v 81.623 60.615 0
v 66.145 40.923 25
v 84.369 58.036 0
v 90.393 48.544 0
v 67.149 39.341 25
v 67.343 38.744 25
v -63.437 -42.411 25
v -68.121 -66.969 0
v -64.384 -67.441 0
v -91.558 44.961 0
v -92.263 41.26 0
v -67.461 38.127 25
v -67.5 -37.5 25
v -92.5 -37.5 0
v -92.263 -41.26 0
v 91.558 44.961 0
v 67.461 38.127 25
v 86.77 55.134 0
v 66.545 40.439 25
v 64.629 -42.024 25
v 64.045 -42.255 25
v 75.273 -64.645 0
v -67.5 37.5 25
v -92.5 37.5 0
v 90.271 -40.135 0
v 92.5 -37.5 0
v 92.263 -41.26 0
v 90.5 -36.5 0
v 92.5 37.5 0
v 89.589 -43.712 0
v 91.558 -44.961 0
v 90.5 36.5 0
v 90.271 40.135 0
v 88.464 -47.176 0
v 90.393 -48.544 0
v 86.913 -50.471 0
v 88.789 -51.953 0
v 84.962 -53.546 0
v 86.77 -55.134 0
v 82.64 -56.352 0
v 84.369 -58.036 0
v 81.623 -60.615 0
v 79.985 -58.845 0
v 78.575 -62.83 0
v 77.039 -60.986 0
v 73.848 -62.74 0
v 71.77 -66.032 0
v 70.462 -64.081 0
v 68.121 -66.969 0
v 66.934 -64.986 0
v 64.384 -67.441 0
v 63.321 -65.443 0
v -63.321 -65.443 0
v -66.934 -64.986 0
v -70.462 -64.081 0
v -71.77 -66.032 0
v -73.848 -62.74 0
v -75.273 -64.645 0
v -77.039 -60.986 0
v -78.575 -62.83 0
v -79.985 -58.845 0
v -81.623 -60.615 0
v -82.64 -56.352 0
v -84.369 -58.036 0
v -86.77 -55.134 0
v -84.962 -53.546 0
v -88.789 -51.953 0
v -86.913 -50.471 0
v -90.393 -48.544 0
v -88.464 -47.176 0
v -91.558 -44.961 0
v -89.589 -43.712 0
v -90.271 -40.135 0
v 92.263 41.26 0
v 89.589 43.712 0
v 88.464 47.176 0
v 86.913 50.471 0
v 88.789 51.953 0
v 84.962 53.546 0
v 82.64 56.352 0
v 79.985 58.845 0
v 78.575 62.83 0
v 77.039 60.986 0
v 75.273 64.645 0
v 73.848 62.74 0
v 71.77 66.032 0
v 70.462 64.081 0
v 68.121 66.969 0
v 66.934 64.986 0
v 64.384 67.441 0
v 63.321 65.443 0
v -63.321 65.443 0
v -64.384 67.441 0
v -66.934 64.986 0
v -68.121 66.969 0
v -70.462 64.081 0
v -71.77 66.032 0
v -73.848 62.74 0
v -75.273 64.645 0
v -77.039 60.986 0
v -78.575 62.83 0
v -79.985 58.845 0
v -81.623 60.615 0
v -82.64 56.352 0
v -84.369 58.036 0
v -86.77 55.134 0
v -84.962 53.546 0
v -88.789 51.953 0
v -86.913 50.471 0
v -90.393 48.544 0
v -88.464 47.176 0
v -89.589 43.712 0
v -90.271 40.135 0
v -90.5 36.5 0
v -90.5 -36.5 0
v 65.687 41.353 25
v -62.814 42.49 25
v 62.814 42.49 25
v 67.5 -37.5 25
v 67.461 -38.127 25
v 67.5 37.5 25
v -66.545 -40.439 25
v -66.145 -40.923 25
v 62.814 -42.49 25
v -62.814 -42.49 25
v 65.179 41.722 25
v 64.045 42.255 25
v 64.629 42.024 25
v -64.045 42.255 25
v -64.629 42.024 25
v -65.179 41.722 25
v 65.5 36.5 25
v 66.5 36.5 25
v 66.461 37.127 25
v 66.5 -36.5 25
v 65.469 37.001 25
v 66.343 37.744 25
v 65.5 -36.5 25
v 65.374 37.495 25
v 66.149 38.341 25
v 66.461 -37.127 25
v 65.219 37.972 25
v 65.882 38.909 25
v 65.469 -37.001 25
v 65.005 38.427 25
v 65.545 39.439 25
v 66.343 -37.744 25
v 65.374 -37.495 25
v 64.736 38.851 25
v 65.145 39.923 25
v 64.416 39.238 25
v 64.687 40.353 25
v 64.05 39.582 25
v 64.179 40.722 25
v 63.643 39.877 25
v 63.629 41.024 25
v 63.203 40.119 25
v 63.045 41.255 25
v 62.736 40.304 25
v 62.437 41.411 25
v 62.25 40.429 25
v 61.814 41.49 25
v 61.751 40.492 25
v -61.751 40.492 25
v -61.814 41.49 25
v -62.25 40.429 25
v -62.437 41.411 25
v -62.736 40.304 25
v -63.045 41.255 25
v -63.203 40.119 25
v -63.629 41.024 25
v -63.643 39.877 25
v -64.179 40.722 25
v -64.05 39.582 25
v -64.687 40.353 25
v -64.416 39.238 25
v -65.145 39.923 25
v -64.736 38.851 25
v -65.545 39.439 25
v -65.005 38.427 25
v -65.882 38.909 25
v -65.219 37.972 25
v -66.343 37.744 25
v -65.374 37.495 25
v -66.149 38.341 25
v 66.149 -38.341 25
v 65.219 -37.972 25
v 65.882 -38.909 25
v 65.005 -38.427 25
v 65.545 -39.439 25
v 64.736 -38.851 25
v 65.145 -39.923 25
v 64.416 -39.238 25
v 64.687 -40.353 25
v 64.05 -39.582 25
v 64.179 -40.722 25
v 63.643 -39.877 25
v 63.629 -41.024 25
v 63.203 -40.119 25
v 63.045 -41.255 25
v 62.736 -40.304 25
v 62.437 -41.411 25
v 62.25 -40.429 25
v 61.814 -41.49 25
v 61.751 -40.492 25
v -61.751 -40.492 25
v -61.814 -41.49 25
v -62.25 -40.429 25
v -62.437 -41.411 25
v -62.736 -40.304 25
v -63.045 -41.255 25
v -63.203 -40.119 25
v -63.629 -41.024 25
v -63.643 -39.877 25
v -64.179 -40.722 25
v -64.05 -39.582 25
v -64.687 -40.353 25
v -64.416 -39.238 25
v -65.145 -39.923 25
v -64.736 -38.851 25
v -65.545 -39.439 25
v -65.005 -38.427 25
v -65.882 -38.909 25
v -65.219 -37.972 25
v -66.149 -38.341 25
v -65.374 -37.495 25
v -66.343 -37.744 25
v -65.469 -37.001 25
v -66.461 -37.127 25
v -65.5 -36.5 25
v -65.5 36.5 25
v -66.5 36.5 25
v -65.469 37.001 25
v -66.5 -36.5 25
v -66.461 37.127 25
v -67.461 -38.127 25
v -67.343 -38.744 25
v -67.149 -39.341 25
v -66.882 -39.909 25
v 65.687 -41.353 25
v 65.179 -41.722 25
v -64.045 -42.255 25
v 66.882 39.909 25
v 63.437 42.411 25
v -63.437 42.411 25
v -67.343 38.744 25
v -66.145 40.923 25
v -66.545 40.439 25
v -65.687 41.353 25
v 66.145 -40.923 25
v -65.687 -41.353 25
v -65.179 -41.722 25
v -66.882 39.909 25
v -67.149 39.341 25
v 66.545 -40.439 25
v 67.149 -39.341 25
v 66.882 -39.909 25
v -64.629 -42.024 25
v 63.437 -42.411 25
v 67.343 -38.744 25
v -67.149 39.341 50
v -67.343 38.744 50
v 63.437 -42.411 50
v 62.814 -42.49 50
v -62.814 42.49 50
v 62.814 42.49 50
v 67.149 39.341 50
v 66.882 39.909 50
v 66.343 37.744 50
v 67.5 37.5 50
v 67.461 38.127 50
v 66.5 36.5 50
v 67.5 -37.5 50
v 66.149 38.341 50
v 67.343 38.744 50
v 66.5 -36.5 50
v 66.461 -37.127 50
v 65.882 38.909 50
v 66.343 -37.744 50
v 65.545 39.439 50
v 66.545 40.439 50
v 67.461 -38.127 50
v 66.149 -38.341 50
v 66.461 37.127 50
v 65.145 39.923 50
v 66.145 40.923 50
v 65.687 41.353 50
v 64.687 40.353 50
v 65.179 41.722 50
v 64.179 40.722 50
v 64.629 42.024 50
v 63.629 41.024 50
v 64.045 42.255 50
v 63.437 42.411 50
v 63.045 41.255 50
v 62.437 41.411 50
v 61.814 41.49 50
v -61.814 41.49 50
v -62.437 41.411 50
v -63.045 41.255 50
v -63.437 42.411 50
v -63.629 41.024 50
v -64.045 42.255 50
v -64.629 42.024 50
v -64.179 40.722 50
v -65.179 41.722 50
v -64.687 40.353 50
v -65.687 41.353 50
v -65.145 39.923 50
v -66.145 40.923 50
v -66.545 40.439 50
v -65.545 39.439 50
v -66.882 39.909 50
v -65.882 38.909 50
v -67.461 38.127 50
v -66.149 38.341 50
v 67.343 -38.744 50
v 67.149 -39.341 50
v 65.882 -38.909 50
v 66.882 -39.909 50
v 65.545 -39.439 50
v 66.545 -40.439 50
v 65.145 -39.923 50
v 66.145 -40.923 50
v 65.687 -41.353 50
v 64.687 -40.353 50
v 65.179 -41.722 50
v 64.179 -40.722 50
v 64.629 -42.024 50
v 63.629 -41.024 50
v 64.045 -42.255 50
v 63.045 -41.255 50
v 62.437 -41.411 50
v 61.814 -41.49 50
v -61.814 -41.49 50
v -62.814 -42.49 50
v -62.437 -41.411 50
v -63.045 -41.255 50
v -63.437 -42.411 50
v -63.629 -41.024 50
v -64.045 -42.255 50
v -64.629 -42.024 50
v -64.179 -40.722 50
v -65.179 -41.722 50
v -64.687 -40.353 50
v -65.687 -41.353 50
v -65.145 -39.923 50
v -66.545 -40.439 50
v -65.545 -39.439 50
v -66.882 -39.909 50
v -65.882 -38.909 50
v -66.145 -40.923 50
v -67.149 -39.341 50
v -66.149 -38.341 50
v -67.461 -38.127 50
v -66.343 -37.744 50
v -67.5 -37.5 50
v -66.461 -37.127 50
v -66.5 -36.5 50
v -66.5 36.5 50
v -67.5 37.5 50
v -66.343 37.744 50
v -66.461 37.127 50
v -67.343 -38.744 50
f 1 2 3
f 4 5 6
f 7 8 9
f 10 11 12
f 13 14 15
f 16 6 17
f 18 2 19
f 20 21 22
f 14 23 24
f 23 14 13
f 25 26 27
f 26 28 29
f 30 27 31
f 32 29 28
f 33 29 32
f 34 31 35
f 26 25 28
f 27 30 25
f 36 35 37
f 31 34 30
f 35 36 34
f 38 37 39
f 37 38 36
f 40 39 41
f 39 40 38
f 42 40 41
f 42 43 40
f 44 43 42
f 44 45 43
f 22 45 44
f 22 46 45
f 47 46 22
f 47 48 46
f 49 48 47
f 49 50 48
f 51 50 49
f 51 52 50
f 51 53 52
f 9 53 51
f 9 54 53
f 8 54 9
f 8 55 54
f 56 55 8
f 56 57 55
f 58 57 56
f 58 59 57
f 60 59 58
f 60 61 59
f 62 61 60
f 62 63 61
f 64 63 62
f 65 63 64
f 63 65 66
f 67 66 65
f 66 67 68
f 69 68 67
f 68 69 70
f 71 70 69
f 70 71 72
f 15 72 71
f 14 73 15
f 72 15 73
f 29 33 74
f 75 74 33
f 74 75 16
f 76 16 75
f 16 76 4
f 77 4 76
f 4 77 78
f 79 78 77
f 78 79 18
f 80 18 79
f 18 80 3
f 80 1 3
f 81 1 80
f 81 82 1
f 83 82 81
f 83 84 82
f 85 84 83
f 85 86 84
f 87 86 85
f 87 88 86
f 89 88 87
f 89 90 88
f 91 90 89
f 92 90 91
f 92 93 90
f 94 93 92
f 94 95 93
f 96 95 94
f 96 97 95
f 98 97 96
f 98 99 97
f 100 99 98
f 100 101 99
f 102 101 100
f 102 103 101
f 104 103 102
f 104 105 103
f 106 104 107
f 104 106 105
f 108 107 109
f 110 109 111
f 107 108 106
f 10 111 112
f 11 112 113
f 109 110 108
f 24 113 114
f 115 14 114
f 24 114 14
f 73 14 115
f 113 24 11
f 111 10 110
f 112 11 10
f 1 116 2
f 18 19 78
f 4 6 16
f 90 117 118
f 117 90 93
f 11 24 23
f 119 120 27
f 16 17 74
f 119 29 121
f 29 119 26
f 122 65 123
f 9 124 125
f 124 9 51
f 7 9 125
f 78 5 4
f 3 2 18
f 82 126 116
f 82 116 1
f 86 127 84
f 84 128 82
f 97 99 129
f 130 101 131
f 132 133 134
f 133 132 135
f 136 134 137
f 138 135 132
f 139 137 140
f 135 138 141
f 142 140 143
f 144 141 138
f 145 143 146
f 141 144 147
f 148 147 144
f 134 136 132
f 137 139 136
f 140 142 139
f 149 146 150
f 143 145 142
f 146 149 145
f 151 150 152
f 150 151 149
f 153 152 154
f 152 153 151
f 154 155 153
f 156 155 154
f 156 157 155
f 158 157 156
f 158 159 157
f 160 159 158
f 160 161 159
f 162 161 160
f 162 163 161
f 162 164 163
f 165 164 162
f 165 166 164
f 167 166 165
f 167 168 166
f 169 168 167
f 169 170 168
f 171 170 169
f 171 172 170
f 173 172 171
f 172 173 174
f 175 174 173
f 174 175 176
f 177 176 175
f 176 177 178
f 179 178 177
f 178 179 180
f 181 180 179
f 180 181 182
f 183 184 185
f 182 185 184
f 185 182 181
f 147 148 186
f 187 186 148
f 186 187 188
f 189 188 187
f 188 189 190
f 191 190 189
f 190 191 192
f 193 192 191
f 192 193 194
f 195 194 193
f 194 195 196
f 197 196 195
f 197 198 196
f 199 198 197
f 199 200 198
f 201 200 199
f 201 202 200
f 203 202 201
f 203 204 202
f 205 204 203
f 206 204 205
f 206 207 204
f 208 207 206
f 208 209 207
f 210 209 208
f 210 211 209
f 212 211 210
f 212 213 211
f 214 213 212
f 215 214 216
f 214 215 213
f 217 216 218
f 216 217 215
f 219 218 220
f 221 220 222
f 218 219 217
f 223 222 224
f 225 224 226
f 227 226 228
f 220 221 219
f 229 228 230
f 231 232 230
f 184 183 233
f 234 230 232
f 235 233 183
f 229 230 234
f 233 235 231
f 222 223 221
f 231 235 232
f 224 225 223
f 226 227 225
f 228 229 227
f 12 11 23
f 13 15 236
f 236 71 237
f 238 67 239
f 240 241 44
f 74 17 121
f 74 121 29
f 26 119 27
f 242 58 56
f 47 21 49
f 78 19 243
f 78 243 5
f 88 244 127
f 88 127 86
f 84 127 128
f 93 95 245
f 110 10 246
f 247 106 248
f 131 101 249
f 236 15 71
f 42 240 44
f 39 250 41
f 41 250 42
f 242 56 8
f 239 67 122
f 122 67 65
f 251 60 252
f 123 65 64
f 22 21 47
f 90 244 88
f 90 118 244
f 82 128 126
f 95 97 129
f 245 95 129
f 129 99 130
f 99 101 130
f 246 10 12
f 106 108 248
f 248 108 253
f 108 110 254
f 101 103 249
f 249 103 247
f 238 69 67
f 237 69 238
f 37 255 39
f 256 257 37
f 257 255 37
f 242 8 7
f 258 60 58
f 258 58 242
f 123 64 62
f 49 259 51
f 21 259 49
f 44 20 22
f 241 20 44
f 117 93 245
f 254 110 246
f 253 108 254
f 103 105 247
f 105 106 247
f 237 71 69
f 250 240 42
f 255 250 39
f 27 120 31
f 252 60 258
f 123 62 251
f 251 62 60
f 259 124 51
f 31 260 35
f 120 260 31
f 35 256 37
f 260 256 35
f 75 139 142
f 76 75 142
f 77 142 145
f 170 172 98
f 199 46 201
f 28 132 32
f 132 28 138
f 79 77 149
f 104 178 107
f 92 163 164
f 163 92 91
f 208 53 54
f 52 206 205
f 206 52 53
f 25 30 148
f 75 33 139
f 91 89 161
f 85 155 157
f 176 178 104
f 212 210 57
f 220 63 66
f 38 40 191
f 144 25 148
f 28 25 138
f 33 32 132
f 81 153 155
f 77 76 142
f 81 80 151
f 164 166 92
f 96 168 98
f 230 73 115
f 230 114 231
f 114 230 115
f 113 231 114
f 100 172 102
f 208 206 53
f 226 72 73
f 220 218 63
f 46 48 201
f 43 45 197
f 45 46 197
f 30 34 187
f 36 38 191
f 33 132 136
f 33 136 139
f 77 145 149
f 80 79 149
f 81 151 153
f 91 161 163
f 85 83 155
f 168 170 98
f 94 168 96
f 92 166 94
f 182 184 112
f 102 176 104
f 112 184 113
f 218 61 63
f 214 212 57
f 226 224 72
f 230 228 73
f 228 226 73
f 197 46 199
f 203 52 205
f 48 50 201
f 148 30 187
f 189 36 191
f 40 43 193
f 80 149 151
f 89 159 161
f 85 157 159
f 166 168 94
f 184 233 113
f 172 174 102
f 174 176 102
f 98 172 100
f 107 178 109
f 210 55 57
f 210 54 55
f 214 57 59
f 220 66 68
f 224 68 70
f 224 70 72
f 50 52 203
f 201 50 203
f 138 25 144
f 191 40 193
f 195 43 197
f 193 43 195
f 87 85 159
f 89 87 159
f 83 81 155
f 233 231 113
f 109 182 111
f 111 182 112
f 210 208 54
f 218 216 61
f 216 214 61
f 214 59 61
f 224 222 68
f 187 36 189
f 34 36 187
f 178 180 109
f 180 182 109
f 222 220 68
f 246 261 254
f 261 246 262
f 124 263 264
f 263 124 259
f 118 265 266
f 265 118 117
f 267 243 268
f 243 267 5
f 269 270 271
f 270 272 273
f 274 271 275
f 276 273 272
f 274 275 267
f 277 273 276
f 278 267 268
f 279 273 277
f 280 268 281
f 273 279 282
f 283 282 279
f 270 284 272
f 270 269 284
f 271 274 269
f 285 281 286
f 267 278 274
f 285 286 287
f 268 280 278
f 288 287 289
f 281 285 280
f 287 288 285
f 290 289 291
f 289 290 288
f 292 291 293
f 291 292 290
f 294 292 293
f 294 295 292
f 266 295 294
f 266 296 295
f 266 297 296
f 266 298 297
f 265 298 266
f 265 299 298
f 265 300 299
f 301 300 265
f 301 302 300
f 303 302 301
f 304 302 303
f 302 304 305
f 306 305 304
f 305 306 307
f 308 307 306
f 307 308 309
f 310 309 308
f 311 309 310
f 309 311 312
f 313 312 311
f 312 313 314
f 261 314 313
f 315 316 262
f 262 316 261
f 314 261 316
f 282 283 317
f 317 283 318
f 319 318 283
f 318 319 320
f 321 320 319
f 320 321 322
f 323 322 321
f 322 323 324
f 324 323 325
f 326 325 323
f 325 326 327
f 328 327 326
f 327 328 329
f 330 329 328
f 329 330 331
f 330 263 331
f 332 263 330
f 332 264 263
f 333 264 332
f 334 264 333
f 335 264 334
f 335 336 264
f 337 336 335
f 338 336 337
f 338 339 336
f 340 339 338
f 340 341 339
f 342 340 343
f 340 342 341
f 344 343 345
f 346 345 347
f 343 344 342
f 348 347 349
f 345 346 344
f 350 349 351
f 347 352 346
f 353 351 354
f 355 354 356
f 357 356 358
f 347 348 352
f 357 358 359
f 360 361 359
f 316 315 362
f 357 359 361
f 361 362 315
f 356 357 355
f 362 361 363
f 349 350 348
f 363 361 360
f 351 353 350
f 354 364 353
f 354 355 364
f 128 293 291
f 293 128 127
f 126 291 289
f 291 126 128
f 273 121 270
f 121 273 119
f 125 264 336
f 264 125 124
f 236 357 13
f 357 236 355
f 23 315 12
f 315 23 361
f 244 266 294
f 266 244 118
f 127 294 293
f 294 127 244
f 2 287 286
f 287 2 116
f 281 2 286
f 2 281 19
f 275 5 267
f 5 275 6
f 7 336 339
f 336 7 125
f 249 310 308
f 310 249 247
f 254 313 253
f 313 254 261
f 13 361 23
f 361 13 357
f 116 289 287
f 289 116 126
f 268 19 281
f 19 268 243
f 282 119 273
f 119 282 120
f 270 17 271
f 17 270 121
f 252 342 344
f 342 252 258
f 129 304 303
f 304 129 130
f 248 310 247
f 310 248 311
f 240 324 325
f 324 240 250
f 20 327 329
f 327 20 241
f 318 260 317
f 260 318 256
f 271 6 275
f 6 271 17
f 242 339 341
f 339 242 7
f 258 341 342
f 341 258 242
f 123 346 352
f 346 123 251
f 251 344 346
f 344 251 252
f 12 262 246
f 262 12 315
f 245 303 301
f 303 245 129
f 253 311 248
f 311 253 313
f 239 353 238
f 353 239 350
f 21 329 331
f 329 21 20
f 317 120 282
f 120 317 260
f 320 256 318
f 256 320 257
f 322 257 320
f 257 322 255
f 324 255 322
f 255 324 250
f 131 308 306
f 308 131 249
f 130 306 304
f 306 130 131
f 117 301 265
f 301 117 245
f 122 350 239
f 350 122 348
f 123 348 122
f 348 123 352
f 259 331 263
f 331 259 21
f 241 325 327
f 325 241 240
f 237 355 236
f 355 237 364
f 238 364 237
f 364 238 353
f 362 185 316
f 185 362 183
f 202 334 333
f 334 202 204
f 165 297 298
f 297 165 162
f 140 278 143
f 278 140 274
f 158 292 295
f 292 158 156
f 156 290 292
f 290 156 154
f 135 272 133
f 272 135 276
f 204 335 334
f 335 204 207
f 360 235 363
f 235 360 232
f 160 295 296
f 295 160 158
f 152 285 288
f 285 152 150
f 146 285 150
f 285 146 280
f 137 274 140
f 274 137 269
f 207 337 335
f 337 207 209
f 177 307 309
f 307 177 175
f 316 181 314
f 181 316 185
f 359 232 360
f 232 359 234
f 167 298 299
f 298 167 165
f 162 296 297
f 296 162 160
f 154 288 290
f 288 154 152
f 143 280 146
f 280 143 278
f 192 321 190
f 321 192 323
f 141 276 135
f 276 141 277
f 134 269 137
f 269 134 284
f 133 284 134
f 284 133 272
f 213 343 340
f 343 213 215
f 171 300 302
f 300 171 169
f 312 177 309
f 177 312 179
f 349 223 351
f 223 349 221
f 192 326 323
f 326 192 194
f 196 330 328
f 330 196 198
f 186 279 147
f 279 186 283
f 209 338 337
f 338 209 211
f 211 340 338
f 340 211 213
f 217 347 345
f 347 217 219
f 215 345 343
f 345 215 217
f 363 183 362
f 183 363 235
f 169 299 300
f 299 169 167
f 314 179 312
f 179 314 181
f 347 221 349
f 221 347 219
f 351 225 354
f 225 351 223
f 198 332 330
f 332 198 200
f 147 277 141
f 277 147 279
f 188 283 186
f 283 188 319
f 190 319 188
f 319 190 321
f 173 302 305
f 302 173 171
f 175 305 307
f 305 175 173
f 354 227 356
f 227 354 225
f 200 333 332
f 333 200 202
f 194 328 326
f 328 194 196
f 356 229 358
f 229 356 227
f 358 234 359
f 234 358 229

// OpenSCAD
$fn = 50;


difference() {
	union() {
		translate(v = [0, 0, 0]) {
			rotate(a = [0, 0, 0]) {
				difference() {
					union() {
						hull() {
							translate(v = [-62.5000000000, 37.5000000000, 0]) {
								cylinder(h = 25, r = 5, r1 = 30.0000000000, r2 = 5);
							}
							translate(v = [62.5000000000, 37.5000000000, 0]) {
								cylinder(h = 25, r = 5, r1 = 30.0000000000, r2 = 5);
							}
							translate(v = [-62.5000000000, -37.5000000000, 0]) {
								cylinder(h = 25, r = 5, r1 = 30.0000000000, r2 = 5);
							}
							translate(v = [62.5000000000, -37.5000000000, 0]) {
								cylinder(h = 25, r = 5, r1 = 30.0000000000, r2 = 5);
							}
						}
					}
					union() {
						hull() {
							translate(v = [-61.5000000000, 36.5000000000, 0]) {
								cylinder(h = 25, r = 5, r1 = 29.0000000000, r2 = 4);
							}
							translate(v = [61.5000000000, 36.5000000000, 0]) {
								cylinder(h = 25, r = 5, r1 = 29.0000000000, r2 = 4);
							}
							translate(v = [-61.5000000000, -36.5000000000, 0]) {
								cylinder(h = 25, r = 5, r1 = 29.0000000000, r2 = 4);
							}
							translate(v = [61.5000000000, -36.5000000000, 0]) {
								cylinder(h = 25, r = 5, r1 = 29.0000000000, r2 = 4);
							}
						}
					}
				}
			}
		}
		translate(v = [0, 0, 25]) {
			rotate(a = [0, 0, 0]) {
				difference() {
					union() {
						hull() {
							translate(v = [-62.5000000000, 37.5000000000, 0]) {
								cylinder(h = 25, r = 5);
							}
							translate(v = [62.5000000000, 37.5000000000, 0]) {
								cylinder(h = 25, r = 5);
							}
							translate(v = [-62.5000000000, -37.5000000000, 0]) {
								cylinder(h = 25, r = 5);
							}
							translate(v = [62.5000000000, -37.5000000000, 0]) {
								cylinder(h = 25, r = 5);
							}
						}
					}
					union() {
						hull() {
							translate(v = [-61.5000000000, 36.5000000000, 0]) {
								cylinder(h = 25, r = 5);
							}
							translate(v = [61.5000000000, 36.5000000000, 0]) {
								cylinder(h = 25, r = 5);
							}
							translate(v = [-61.5000000000, -36.5000000000, 0]) {
								cylinder(h = 25, r = 5);
							}
							translate(v = [61.5000000000, -36.5000000000, 0]) {
								cylinder(h = 25, r = 5);
							}
						}
					}
				}
			}
		}
	}
	union();
}
